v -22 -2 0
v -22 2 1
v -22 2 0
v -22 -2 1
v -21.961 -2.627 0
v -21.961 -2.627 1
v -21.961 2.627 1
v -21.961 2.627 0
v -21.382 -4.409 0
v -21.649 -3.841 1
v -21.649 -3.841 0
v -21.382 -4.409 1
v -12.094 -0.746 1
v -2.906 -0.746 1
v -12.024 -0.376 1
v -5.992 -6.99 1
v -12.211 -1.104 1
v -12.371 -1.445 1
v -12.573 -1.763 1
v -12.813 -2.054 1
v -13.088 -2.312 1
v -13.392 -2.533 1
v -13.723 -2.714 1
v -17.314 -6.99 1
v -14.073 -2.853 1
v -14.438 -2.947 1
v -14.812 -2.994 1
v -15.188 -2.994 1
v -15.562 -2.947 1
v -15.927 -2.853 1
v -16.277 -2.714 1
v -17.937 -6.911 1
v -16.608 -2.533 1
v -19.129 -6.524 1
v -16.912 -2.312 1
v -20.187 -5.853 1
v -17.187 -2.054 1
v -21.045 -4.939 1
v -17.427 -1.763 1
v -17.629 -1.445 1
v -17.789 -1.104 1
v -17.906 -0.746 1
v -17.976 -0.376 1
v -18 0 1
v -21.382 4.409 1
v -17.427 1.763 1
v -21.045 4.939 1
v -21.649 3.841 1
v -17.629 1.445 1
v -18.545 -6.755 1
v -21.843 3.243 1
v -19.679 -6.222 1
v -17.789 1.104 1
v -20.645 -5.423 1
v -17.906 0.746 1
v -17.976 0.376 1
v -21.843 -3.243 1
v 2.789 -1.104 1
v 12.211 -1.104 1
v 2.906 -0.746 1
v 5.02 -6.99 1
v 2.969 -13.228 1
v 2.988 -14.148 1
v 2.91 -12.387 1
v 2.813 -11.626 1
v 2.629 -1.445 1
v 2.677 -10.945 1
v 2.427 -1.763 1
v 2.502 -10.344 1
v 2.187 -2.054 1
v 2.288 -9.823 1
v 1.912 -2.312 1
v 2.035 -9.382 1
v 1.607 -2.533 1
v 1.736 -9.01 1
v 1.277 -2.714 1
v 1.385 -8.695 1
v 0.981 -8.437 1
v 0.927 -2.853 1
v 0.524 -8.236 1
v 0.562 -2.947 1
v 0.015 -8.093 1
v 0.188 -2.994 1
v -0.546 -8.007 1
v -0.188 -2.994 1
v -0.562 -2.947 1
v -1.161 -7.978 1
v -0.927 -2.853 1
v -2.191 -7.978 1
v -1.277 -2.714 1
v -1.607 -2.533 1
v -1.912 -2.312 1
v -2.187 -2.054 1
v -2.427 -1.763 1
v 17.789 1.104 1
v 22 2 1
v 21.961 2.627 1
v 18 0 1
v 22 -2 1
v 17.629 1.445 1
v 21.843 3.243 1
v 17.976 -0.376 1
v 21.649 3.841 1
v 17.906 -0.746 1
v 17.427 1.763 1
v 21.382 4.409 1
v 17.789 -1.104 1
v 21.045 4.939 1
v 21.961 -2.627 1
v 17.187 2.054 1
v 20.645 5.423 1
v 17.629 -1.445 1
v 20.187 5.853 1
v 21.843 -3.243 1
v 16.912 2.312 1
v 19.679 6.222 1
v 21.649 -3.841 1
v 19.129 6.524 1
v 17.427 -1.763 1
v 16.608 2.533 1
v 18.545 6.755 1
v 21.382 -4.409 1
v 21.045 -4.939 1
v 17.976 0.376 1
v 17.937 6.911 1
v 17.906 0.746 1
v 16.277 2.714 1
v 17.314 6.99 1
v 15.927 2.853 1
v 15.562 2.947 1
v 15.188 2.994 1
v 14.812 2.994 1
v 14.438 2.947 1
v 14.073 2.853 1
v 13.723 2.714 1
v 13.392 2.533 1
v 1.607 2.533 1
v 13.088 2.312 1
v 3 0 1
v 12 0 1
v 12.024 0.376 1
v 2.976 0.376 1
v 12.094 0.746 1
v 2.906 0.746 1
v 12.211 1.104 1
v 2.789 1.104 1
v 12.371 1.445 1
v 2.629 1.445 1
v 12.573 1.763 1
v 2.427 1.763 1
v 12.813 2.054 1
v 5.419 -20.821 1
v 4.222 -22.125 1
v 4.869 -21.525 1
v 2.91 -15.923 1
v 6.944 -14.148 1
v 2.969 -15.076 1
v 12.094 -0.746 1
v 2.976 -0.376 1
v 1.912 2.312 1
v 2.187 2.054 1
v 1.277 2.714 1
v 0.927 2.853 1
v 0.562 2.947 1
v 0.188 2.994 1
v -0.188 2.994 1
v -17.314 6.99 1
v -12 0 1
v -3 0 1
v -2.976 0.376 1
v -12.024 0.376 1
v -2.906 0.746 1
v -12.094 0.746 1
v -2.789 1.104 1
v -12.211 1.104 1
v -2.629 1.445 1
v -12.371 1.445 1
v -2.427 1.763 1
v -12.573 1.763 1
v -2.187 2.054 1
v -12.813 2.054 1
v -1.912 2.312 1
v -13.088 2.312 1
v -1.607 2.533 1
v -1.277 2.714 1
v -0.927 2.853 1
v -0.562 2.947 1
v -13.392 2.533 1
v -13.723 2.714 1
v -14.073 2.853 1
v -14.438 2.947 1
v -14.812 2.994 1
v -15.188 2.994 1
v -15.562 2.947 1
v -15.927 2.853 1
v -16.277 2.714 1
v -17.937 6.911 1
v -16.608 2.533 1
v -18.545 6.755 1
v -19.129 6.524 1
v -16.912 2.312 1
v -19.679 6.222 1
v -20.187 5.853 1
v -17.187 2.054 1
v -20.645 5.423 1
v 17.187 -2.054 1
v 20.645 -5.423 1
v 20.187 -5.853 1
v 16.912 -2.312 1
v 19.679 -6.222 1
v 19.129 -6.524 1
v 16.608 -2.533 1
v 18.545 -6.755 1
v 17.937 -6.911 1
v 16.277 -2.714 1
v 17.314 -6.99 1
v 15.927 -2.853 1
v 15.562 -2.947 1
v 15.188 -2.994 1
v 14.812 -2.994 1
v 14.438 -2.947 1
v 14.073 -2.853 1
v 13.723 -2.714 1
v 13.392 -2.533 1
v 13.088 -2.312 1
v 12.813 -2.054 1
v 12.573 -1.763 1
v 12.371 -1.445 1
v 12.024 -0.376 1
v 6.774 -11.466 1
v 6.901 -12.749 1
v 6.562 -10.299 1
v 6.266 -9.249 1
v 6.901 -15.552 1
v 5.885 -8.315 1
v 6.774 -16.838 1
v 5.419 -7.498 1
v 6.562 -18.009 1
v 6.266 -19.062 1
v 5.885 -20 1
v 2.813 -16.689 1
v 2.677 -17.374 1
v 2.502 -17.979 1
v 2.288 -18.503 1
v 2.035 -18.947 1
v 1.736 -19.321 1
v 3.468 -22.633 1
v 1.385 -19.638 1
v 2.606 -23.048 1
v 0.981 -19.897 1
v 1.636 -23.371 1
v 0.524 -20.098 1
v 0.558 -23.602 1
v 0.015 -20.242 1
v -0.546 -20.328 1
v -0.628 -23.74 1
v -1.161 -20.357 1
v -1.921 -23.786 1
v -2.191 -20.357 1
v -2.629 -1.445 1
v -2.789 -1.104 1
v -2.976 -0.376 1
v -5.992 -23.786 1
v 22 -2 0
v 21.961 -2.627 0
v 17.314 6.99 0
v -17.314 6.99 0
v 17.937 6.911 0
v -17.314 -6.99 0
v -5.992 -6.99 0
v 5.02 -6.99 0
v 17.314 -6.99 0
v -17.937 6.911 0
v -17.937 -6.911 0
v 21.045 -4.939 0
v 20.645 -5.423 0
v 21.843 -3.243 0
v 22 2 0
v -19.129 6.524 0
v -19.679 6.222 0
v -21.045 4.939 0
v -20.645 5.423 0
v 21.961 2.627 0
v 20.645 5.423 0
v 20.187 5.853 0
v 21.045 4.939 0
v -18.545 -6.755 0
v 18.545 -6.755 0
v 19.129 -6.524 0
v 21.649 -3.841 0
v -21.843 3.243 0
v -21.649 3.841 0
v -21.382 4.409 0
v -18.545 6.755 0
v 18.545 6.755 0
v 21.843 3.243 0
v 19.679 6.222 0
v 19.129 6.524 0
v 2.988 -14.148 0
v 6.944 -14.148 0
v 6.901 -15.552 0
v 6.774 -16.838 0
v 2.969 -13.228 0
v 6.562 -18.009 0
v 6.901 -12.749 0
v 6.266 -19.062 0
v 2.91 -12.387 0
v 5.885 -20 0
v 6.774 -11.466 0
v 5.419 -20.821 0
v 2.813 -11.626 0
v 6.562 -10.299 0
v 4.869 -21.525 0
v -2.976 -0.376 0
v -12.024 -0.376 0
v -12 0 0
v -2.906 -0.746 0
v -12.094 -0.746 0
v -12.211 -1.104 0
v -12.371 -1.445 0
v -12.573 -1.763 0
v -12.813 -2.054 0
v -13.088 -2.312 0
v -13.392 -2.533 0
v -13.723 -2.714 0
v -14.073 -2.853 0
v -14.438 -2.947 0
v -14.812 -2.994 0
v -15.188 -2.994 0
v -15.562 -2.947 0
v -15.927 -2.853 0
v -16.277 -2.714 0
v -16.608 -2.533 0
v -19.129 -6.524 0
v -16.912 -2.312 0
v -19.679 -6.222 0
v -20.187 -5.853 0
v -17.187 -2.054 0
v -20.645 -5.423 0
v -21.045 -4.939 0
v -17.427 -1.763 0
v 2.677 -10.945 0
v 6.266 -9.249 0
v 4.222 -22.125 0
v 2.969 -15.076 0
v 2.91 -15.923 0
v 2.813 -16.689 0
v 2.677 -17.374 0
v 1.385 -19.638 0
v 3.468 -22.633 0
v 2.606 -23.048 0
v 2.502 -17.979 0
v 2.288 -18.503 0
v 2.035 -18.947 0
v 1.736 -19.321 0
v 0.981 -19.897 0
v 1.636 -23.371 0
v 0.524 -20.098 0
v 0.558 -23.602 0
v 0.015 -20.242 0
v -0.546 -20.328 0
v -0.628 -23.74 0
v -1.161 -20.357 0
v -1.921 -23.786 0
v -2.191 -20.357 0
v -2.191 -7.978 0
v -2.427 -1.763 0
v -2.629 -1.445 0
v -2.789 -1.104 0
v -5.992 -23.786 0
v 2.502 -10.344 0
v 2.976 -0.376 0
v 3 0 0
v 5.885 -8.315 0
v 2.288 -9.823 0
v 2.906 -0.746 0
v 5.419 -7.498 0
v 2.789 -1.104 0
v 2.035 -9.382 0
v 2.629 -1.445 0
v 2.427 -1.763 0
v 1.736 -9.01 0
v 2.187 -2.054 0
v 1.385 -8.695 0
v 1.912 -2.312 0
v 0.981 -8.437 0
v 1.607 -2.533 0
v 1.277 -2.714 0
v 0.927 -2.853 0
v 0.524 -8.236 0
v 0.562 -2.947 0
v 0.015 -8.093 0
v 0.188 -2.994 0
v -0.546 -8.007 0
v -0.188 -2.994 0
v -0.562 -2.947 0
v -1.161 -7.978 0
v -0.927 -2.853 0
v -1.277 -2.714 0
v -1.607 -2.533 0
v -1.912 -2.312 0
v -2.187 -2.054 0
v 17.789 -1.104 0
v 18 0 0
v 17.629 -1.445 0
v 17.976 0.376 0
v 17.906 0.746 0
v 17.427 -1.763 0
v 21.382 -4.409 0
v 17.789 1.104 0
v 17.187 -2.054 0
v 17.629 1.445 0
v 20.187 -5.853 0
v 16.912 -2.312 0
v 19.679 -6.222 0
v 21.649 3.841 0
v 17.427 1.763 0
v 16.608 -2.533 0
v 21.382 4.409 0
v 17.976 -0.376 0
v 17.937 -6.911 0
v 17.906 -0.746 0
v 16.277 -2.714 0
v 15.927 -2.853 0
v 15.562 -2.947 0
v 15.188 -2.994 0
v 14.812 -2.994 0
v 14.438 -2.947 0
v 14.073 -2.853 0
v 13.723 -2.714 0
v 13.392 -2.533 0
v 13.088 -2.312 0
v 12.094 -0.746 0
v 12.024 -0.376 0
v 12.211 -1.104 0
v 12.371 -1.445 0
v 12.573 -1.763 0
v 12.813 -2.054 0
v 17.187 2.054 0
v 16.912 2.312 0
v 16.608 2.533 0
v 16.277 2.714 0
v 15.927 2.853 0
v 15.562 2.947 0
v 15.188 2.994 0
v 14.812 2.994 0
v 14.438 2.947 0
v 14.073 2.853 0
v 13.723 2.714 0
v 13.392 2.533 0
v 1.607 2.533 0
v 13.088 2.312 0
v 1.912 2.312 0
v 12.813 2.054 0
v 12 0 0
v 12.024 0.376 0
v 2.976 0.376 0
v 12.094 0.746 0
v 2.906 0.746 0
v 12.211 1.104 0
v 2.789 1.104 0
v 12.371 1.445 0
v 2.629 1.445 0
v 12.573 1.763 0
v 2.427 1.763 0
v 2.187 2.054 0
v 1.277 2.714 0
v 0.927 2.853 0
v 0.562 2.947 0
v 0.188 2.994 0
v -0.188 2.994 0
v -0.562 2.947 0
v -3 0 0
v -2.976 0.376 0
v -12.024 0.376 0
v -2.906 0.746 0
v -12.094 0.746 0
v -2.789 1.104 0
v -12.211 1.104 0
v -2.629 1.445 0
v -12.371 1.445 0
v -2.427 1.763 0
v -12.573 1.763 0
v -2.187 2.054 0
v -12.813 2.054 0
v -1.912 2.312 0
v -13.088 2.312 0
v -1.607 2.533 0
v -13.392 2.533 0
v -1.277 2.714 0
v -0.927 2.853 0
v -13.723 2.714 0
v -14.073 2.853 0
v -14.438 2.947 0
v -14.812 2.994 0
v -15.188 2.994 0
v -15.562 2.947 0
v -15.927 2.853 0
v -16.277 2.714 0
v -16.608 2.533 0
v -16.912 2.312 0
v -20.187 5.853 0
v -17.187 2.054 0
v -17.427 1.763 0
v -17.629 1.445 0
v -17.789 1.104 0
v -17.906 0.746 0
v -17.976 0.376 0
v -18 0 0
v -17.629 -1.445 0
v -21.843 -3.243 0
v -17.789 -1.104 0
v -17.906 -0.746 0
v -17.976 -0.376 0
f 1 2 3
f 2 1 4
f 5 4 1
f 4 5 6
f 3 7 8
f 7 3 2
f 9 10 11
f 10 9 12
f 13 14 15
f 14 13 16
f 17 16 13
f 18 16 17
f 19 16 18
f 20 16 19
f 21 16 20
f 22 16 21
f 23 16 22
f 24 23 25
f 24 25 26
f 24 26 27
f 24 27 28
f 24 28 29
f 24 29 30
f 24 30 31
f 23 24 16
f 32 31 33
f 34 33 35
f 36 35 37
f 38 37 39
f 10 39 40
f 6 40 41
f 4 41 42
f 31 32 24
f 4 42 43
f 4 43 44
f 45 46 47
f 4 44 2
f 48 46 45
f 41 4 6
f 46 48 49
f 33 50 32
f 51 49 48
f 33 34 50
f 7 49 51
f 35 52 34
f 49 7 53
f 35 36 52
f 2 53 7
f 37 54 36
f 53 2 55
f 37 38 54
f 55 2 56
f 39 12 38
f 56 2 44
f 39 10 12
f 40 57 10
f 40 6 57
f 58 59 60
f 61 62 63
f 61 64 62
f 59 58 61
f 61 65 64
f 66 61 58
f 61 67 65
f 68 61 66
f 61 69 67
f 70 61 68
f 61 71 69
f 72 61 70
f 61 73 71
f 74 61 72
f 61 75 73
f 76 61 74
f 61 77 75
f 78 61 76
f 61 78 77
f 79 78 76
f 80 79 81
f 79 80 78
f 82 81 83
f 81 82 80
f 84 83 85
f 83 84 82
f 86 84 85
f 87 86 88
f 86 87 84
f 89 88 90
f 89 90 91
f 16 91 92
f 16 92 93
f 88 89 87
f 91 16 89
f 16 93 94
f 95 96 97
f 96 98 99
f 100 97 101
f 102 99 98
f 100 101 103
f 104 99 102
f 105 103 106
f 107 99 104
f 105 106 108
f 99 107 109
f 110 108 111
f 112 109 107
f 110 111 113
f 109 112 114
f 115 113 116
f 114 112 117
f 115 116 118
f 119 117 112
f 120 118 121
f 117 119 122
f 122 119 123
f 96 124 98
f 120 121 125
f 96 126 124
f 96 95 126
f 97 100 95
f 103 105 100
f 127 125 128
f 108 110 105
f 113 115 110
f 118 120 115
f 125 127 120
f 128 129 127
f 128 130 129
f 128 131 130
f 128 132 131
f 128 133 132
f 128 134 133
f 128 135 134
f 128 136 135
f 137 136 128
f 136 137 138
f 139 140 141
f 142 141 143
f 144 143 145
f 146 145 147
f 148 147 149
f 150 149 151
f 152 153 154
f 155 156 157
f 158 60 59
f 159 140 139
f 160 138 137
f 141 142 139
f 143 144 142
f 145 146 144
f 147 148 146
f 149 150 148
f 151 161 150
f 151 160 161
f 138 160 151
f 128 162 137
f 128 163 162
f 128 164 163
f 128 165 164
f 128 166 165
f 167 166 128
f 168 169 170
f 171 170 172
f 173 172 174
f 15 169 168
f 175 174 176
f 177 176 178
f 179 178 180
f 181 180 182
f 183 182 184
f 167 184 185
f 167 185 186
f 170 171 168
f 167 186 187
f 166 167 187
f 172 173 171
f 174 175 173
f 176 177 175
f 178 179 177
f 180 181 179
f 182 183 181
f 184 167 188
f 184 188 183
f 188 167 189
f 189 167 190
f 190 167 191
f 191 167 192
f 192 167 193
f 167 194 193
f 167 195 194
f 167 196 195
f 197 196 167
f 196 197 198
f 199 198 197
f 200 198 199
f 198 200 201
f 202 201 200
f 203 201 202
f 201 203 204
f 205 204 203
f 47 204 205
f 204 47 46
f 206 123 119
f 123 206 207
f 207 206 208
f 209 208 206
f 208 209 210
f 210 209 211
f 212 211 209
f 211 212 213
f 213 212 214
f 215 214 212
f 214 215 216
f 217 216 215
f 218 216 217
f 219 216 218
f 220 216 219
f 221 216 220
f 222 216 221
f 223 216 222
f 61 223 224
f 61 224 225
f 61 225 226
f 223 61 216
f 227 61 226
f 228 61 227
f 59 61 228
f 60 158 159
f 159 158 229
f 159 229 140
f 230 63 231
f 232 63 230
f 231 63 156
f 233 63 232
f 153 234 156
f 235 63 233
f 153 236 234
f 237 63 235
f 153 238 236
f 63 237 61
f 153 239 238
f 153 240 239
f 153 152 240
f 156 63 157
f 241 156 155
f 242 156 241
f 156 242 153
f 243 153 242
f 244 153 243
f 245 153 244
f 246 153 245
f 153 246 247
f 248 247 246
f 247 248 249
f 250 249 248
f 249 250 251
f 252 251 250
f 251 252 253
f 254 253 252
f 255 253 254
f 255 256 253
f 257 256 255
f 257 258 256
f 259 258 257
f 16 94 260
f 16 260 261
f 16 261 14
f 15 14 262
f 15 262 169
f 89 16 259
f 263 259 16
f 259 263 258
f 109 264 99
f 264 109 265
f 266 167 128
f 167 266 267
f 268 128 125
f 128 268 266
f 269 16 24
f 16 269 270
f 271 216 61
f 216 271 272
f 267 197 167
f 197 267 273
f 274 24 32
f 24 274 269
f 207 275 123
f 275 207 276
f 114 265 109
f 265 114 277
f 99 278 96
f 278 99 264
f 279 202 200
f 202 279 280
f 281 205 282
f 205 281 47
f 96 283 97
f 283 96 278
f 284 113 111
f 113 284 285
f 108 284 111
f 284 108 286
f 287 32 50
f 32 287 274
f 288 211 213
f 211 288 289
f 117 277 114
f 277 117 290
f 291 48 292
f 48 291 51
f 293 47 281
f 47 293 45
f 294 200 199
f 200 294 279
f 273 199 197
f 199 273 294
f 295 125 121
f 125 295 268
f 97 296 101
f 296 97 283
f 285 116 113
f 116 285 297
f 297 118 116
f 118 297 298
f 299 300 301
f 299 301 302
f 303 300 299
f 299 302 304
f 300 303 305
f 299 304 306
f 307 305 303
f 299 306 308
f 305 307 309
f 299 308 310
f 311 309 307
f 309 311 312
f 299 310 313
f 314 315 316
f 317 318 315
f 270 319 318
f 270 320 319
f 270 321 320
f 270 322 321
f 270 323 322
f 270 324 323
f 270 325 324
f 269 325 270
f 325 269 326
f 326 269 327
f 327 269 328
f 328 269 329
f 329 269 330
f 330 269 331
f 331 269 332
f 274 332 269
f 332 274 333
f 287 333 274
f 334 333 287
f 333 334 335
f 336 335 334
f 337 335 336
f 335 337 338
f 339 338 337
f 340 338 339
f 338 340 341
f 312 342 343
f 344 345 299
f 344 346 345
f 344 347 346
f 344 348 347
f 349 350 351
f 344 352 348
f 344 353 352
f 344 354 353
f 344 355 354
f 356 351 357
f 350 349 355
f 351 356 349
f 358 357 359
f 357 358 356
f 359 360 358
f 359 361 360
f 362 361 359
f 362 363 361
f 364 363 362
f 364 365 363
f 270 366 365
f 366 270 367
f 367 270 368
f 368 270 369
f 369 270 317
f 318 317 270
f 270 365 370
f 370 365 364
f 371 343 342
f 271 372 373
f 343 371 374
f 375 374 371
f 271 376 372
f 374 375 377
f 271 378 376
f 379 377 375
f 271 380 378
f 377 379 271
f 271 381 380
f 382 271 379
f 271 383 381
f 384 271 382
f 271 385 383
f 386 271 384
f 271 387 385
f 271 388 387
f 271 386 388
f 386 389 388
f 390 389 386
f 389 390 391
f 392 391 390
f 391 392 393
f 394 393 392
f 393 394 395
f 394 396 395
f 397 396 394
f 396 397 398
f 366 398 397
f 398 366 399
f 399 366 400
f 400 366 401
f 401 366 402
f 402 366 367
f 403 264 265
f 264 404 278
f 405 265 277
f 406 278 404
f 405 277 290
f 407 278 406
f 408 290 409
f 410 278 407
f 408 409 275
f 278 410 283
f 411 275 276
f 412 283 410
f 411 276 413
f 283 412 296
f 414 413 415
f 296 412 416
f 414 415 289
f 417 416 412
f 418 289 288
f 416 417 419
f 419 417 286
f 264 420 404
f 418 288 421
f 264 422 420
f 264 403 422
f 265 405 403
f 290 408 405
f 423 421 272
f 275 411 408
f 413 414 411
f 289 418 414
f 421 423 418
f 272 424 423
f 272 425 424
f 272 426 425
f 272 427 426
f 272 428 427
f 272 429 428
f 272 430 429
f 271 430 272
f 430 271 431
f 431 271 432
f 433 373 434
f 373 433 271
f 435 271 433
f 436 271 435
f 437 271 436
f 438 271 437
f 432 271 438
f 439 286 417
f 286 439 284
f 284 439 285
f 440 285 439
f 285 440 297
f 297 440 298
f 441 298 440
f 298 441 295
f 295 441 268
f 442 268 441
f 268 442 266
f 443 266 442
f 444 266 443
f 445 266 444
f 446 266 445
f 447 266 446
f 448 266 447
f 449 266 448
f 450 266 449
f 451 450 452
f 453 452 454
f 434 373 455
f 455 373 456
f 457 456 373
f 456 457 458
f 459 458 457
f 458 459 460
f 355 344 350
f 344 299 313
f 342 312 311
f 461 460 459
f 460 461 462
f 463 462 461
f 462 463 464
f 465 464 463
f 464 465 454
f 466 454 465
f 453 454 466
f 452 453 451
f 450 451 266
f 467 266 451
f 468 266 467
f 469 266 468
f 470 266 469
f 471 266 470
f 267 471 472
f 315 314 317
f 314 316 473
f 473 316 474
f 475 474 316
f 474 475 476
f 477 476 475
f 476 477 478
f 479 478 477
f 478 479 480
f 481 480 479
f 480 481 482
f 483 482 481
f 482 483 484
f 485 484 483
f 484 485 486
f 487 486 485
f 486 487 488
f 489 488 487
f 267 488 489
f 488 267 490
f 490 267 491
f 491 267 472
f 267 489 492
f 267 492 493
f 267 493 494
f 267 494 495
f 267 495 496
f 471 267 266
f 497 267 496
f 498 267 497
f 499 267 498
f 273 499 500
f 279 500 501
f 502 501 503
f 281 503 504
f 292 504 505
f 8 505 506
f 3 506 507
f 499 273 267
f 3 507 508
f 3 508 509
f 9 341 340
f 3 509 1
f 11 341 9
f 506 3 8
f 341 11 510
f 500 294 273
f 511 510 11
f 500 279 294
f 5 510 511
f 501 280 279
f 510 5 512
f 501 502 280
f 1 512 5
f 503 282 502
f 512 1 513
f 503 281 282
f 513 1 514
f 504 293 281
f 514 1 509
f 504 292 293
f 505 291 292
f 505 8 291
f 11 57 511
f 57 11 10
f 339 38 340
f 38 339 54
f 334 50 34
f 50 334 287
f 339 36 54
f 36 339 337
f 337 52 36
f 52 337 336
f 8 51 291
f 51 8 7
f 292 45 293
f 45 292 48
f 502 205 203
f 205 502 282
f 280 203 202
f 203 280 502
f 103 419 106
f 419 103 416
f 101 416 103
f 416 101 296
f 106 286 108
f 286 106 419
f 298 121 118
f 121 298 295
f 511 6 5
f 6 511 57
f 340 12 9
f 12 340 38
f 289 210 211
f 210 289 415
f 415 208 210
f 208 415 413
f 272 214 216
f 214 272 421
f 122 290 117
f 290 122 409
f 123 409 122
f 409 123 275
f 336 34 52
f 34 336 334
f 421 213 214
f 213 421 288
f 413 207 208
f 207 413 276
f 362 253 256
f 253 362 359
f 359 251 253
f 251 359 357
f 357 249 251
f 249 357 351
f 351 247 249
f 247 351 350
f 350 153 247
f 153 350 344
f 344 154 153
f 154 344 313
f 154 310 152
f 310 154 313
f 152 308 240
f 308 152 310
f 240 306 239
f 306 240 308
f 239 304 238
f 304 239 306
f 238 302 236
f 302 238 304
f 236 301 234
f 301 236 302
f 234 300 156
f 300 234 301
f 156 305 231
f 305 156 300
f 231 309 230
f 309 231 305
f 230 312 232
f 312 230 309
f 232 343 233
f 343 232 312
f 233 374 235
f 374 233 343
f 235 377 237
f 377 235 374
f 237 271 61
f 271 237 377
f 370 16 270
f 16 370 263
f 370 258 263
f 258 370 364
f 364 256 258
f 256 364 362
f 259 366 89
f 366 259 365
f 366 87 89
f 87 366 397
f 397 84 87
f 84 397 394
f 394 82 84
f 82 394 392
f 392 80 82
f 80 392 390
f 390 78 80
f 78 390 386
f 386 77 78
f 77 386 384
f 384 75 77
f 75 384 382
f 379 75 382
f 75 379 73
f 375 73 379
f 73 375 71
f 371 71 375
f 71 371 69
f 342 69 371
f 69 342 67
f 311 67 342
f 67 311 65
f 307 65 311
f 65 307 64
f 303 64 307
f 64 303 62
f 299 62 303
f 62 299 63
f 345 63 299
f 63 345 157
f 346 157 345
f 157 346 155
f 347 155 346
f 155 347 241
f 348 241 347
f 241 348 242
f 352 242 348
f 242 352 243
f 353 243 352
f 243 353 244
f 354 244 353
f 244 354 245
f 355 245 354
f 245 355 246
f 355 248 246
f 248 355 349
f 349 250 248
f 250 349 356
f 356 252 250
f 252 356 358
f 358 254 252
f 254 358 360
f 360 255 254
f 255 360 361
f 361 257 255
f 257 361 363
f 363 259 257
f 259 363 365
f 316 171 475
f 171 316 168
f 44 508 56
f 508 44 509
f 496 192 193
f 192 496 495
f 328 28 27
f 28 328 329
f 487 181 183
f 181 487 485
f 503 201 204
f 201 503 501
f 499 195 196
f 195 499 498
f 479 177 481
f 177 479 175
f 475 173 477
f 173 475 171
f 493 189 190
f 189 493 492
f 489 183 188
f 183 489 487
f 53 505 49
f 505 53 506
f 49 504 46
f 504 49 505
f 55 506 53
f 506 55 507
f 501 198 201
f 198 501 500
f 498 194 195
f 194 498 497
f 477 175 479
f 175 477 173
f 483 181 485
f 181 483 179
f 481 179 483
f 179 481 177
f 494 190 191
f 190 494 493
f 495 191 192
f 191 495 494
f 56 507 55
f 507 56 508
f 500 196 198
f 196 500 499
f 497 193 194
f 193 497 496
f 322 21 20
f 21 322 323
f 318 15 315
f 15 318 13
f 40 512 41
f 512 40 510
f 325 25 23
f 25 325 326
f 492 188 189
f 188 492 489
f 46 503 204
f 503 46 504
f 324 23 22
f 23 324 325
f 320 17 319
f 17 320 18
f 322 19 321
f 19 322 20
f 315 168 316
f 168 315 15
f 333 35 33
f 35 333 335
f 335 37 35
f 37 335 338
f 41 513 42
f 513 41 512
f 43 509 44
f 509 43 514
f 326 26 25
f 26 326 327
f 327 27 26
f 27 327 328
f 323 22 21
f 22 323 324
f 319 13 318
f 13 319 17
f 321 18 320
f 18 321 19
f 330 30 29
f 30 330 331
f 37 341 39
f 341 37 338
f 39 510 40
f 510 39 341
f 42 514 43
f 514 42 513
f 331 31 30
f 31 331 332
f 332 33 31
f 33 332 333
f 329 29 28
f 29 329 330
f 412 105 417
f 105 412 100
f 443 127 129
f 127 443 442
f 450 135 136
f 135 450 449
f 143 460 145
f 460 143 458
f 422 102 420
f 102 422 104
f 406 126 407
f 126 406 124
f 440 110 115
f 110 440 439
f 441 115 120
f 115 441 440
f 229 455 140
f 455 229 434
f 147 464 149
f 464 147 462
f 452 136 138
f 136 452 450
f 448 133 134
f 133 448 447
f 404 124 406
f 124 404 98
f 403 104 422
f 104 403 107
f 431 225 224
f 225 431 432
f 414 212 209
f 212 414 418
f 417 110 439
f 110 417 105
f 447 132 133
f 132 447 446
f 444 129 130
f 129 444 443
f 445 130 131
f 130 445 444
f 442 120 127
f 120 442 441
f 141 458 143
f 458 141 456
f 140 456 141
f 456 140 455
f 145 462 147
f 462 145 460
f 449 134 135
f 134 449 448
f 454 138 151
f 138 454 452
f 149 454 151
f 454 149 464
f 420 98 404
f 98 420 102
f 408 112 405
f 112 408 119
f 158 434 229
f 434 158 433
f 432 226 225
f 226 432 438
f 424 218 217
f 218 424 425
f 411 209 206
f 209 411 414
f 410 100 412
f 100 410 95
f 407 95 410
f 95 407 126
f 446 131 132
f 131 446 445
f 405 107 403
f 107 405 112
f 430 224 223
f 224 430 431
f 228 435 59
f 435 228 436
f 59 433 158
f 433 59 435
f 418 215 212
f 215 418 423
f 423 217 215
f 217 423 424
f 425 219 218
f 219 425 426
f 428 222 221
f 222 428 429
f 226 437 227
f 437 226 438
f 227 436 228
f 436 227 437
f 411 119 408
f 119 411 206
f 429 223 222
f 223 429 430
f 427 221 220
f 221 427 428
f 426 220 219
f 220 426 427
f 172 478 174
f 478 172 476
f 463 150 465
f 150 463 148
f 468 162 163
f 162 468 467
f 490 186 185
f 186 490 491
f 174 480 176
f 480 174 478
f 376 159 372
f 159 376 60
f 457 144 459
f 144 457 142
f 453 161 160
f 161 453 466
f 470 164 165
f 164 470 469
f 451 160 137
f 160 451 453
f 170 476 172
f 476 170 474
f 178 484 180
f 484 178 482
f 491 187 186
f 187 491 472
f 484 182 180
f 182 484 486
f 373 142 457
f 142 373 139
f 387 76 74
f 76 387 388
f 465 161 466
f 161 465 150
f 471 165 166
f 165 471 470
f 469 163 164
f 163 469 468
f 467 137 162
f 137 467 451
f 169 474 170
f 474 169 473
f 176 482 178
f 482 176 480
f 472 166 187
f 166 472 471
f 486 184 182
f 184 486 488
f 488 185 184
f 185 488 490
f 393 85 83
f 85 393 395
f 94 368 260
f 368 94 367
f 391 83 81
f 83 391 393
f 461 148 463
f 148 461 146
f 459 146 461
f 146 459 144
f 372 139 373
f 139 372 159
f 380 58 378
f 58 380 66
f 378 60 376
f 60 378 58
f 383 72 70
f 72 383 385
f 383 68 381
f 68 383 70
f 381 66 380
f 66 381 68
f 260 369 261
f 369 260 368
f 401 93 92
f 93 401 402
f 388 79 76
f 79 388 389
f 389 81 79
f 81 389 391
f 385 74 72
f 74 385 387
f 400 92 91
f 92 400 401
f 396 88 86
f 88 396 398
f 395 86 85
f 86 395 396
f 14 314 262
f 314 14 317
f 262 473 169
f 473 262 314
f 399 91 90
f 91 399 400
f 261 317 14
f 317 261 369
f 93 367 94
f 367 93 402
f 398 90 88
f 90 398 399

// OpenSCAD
$fn = 50;


difference() {
	union() {
		translate(v = [0, 0, 0]) {
			rotate(a = [0, 0, 0]) {
				hull() {
					translate(v = [-17.0000000000, 2.0000000000, 0]) {
						rotate(a = [0, 0, 0]) {
							translate(v = [0, 0, 0]) {
								rotate(a = [0, 0, 0]) {
									cylinder(h = 1, r = 5);
								}
							}
						}
					}
					translate(v = [17.0000000000, 2.0000000000, 0]) {
						rotate(a = [0, 0, 0]) {
							translate(v = [0, 0, 0]) {
								rotate(a = [0, 0, 0]) {
									cylinder(h = 1, r = 5);
								}
							}
						}
					}
					translate(v = [-17.0000000000, -2.0000000000, 0]) {
						rotate(a = [0, 0, 0]) {
							translate(v = [0, 0, 0]) {
								rotate(a = [0, 0, 0]) {
									cylinder(h = 1, r = 5);
								}
							}
						}
					}
					translate(v = [17.0000000000, -2.0000000000, 0]) {
						rotate(a = [0, 0, 0]) {
							translate(v = [0, 0, 0]) {
								rotate(a = [0, 0, 0]) {
									cylinder(h = 1, r = 5);
								}
							}
						}
					}
				}
			}
		}
		translate(v = [0, -5, 0]) {
			rotate(a = [0, 0, 0]) {
				linear_extrude(height = 1) {
					text(font = "DejaVu Sans Mono:style=Bold", halign = "center", size = 19.0000000000, text = "D", valign = "top");
				}
			}
		}
	}
	union() {
		translate(v = [-15.0000000000, 0.0000000000, -125.0000000000]) {
			rotate(a = [0, 0, 0]) {
				cylinder(h = 250, r = 3.0000000000);
			}
		}
		translate(v = [15.0000000000, 0.0000000000, -125.0000000000]) {
			rotate(a = [0, 0, 0]) {
				cylinder(h = 250, r = 3.0000000000);
			}
		}
		translate(v = [15.0000000000, 0.0000000000, -125.0000000000]) {
			rotate(a = [0, 0, 0]) {
				cylinder(h = 250, r = 3.0000000000);
			}
		}
		translate(v = [0, 0, -125.0000000000]) {
			rotate(a = [0, 0, 0]) {
				cylinder(h = 250, r = 3.0000000000);
			}
		}
	}
}
